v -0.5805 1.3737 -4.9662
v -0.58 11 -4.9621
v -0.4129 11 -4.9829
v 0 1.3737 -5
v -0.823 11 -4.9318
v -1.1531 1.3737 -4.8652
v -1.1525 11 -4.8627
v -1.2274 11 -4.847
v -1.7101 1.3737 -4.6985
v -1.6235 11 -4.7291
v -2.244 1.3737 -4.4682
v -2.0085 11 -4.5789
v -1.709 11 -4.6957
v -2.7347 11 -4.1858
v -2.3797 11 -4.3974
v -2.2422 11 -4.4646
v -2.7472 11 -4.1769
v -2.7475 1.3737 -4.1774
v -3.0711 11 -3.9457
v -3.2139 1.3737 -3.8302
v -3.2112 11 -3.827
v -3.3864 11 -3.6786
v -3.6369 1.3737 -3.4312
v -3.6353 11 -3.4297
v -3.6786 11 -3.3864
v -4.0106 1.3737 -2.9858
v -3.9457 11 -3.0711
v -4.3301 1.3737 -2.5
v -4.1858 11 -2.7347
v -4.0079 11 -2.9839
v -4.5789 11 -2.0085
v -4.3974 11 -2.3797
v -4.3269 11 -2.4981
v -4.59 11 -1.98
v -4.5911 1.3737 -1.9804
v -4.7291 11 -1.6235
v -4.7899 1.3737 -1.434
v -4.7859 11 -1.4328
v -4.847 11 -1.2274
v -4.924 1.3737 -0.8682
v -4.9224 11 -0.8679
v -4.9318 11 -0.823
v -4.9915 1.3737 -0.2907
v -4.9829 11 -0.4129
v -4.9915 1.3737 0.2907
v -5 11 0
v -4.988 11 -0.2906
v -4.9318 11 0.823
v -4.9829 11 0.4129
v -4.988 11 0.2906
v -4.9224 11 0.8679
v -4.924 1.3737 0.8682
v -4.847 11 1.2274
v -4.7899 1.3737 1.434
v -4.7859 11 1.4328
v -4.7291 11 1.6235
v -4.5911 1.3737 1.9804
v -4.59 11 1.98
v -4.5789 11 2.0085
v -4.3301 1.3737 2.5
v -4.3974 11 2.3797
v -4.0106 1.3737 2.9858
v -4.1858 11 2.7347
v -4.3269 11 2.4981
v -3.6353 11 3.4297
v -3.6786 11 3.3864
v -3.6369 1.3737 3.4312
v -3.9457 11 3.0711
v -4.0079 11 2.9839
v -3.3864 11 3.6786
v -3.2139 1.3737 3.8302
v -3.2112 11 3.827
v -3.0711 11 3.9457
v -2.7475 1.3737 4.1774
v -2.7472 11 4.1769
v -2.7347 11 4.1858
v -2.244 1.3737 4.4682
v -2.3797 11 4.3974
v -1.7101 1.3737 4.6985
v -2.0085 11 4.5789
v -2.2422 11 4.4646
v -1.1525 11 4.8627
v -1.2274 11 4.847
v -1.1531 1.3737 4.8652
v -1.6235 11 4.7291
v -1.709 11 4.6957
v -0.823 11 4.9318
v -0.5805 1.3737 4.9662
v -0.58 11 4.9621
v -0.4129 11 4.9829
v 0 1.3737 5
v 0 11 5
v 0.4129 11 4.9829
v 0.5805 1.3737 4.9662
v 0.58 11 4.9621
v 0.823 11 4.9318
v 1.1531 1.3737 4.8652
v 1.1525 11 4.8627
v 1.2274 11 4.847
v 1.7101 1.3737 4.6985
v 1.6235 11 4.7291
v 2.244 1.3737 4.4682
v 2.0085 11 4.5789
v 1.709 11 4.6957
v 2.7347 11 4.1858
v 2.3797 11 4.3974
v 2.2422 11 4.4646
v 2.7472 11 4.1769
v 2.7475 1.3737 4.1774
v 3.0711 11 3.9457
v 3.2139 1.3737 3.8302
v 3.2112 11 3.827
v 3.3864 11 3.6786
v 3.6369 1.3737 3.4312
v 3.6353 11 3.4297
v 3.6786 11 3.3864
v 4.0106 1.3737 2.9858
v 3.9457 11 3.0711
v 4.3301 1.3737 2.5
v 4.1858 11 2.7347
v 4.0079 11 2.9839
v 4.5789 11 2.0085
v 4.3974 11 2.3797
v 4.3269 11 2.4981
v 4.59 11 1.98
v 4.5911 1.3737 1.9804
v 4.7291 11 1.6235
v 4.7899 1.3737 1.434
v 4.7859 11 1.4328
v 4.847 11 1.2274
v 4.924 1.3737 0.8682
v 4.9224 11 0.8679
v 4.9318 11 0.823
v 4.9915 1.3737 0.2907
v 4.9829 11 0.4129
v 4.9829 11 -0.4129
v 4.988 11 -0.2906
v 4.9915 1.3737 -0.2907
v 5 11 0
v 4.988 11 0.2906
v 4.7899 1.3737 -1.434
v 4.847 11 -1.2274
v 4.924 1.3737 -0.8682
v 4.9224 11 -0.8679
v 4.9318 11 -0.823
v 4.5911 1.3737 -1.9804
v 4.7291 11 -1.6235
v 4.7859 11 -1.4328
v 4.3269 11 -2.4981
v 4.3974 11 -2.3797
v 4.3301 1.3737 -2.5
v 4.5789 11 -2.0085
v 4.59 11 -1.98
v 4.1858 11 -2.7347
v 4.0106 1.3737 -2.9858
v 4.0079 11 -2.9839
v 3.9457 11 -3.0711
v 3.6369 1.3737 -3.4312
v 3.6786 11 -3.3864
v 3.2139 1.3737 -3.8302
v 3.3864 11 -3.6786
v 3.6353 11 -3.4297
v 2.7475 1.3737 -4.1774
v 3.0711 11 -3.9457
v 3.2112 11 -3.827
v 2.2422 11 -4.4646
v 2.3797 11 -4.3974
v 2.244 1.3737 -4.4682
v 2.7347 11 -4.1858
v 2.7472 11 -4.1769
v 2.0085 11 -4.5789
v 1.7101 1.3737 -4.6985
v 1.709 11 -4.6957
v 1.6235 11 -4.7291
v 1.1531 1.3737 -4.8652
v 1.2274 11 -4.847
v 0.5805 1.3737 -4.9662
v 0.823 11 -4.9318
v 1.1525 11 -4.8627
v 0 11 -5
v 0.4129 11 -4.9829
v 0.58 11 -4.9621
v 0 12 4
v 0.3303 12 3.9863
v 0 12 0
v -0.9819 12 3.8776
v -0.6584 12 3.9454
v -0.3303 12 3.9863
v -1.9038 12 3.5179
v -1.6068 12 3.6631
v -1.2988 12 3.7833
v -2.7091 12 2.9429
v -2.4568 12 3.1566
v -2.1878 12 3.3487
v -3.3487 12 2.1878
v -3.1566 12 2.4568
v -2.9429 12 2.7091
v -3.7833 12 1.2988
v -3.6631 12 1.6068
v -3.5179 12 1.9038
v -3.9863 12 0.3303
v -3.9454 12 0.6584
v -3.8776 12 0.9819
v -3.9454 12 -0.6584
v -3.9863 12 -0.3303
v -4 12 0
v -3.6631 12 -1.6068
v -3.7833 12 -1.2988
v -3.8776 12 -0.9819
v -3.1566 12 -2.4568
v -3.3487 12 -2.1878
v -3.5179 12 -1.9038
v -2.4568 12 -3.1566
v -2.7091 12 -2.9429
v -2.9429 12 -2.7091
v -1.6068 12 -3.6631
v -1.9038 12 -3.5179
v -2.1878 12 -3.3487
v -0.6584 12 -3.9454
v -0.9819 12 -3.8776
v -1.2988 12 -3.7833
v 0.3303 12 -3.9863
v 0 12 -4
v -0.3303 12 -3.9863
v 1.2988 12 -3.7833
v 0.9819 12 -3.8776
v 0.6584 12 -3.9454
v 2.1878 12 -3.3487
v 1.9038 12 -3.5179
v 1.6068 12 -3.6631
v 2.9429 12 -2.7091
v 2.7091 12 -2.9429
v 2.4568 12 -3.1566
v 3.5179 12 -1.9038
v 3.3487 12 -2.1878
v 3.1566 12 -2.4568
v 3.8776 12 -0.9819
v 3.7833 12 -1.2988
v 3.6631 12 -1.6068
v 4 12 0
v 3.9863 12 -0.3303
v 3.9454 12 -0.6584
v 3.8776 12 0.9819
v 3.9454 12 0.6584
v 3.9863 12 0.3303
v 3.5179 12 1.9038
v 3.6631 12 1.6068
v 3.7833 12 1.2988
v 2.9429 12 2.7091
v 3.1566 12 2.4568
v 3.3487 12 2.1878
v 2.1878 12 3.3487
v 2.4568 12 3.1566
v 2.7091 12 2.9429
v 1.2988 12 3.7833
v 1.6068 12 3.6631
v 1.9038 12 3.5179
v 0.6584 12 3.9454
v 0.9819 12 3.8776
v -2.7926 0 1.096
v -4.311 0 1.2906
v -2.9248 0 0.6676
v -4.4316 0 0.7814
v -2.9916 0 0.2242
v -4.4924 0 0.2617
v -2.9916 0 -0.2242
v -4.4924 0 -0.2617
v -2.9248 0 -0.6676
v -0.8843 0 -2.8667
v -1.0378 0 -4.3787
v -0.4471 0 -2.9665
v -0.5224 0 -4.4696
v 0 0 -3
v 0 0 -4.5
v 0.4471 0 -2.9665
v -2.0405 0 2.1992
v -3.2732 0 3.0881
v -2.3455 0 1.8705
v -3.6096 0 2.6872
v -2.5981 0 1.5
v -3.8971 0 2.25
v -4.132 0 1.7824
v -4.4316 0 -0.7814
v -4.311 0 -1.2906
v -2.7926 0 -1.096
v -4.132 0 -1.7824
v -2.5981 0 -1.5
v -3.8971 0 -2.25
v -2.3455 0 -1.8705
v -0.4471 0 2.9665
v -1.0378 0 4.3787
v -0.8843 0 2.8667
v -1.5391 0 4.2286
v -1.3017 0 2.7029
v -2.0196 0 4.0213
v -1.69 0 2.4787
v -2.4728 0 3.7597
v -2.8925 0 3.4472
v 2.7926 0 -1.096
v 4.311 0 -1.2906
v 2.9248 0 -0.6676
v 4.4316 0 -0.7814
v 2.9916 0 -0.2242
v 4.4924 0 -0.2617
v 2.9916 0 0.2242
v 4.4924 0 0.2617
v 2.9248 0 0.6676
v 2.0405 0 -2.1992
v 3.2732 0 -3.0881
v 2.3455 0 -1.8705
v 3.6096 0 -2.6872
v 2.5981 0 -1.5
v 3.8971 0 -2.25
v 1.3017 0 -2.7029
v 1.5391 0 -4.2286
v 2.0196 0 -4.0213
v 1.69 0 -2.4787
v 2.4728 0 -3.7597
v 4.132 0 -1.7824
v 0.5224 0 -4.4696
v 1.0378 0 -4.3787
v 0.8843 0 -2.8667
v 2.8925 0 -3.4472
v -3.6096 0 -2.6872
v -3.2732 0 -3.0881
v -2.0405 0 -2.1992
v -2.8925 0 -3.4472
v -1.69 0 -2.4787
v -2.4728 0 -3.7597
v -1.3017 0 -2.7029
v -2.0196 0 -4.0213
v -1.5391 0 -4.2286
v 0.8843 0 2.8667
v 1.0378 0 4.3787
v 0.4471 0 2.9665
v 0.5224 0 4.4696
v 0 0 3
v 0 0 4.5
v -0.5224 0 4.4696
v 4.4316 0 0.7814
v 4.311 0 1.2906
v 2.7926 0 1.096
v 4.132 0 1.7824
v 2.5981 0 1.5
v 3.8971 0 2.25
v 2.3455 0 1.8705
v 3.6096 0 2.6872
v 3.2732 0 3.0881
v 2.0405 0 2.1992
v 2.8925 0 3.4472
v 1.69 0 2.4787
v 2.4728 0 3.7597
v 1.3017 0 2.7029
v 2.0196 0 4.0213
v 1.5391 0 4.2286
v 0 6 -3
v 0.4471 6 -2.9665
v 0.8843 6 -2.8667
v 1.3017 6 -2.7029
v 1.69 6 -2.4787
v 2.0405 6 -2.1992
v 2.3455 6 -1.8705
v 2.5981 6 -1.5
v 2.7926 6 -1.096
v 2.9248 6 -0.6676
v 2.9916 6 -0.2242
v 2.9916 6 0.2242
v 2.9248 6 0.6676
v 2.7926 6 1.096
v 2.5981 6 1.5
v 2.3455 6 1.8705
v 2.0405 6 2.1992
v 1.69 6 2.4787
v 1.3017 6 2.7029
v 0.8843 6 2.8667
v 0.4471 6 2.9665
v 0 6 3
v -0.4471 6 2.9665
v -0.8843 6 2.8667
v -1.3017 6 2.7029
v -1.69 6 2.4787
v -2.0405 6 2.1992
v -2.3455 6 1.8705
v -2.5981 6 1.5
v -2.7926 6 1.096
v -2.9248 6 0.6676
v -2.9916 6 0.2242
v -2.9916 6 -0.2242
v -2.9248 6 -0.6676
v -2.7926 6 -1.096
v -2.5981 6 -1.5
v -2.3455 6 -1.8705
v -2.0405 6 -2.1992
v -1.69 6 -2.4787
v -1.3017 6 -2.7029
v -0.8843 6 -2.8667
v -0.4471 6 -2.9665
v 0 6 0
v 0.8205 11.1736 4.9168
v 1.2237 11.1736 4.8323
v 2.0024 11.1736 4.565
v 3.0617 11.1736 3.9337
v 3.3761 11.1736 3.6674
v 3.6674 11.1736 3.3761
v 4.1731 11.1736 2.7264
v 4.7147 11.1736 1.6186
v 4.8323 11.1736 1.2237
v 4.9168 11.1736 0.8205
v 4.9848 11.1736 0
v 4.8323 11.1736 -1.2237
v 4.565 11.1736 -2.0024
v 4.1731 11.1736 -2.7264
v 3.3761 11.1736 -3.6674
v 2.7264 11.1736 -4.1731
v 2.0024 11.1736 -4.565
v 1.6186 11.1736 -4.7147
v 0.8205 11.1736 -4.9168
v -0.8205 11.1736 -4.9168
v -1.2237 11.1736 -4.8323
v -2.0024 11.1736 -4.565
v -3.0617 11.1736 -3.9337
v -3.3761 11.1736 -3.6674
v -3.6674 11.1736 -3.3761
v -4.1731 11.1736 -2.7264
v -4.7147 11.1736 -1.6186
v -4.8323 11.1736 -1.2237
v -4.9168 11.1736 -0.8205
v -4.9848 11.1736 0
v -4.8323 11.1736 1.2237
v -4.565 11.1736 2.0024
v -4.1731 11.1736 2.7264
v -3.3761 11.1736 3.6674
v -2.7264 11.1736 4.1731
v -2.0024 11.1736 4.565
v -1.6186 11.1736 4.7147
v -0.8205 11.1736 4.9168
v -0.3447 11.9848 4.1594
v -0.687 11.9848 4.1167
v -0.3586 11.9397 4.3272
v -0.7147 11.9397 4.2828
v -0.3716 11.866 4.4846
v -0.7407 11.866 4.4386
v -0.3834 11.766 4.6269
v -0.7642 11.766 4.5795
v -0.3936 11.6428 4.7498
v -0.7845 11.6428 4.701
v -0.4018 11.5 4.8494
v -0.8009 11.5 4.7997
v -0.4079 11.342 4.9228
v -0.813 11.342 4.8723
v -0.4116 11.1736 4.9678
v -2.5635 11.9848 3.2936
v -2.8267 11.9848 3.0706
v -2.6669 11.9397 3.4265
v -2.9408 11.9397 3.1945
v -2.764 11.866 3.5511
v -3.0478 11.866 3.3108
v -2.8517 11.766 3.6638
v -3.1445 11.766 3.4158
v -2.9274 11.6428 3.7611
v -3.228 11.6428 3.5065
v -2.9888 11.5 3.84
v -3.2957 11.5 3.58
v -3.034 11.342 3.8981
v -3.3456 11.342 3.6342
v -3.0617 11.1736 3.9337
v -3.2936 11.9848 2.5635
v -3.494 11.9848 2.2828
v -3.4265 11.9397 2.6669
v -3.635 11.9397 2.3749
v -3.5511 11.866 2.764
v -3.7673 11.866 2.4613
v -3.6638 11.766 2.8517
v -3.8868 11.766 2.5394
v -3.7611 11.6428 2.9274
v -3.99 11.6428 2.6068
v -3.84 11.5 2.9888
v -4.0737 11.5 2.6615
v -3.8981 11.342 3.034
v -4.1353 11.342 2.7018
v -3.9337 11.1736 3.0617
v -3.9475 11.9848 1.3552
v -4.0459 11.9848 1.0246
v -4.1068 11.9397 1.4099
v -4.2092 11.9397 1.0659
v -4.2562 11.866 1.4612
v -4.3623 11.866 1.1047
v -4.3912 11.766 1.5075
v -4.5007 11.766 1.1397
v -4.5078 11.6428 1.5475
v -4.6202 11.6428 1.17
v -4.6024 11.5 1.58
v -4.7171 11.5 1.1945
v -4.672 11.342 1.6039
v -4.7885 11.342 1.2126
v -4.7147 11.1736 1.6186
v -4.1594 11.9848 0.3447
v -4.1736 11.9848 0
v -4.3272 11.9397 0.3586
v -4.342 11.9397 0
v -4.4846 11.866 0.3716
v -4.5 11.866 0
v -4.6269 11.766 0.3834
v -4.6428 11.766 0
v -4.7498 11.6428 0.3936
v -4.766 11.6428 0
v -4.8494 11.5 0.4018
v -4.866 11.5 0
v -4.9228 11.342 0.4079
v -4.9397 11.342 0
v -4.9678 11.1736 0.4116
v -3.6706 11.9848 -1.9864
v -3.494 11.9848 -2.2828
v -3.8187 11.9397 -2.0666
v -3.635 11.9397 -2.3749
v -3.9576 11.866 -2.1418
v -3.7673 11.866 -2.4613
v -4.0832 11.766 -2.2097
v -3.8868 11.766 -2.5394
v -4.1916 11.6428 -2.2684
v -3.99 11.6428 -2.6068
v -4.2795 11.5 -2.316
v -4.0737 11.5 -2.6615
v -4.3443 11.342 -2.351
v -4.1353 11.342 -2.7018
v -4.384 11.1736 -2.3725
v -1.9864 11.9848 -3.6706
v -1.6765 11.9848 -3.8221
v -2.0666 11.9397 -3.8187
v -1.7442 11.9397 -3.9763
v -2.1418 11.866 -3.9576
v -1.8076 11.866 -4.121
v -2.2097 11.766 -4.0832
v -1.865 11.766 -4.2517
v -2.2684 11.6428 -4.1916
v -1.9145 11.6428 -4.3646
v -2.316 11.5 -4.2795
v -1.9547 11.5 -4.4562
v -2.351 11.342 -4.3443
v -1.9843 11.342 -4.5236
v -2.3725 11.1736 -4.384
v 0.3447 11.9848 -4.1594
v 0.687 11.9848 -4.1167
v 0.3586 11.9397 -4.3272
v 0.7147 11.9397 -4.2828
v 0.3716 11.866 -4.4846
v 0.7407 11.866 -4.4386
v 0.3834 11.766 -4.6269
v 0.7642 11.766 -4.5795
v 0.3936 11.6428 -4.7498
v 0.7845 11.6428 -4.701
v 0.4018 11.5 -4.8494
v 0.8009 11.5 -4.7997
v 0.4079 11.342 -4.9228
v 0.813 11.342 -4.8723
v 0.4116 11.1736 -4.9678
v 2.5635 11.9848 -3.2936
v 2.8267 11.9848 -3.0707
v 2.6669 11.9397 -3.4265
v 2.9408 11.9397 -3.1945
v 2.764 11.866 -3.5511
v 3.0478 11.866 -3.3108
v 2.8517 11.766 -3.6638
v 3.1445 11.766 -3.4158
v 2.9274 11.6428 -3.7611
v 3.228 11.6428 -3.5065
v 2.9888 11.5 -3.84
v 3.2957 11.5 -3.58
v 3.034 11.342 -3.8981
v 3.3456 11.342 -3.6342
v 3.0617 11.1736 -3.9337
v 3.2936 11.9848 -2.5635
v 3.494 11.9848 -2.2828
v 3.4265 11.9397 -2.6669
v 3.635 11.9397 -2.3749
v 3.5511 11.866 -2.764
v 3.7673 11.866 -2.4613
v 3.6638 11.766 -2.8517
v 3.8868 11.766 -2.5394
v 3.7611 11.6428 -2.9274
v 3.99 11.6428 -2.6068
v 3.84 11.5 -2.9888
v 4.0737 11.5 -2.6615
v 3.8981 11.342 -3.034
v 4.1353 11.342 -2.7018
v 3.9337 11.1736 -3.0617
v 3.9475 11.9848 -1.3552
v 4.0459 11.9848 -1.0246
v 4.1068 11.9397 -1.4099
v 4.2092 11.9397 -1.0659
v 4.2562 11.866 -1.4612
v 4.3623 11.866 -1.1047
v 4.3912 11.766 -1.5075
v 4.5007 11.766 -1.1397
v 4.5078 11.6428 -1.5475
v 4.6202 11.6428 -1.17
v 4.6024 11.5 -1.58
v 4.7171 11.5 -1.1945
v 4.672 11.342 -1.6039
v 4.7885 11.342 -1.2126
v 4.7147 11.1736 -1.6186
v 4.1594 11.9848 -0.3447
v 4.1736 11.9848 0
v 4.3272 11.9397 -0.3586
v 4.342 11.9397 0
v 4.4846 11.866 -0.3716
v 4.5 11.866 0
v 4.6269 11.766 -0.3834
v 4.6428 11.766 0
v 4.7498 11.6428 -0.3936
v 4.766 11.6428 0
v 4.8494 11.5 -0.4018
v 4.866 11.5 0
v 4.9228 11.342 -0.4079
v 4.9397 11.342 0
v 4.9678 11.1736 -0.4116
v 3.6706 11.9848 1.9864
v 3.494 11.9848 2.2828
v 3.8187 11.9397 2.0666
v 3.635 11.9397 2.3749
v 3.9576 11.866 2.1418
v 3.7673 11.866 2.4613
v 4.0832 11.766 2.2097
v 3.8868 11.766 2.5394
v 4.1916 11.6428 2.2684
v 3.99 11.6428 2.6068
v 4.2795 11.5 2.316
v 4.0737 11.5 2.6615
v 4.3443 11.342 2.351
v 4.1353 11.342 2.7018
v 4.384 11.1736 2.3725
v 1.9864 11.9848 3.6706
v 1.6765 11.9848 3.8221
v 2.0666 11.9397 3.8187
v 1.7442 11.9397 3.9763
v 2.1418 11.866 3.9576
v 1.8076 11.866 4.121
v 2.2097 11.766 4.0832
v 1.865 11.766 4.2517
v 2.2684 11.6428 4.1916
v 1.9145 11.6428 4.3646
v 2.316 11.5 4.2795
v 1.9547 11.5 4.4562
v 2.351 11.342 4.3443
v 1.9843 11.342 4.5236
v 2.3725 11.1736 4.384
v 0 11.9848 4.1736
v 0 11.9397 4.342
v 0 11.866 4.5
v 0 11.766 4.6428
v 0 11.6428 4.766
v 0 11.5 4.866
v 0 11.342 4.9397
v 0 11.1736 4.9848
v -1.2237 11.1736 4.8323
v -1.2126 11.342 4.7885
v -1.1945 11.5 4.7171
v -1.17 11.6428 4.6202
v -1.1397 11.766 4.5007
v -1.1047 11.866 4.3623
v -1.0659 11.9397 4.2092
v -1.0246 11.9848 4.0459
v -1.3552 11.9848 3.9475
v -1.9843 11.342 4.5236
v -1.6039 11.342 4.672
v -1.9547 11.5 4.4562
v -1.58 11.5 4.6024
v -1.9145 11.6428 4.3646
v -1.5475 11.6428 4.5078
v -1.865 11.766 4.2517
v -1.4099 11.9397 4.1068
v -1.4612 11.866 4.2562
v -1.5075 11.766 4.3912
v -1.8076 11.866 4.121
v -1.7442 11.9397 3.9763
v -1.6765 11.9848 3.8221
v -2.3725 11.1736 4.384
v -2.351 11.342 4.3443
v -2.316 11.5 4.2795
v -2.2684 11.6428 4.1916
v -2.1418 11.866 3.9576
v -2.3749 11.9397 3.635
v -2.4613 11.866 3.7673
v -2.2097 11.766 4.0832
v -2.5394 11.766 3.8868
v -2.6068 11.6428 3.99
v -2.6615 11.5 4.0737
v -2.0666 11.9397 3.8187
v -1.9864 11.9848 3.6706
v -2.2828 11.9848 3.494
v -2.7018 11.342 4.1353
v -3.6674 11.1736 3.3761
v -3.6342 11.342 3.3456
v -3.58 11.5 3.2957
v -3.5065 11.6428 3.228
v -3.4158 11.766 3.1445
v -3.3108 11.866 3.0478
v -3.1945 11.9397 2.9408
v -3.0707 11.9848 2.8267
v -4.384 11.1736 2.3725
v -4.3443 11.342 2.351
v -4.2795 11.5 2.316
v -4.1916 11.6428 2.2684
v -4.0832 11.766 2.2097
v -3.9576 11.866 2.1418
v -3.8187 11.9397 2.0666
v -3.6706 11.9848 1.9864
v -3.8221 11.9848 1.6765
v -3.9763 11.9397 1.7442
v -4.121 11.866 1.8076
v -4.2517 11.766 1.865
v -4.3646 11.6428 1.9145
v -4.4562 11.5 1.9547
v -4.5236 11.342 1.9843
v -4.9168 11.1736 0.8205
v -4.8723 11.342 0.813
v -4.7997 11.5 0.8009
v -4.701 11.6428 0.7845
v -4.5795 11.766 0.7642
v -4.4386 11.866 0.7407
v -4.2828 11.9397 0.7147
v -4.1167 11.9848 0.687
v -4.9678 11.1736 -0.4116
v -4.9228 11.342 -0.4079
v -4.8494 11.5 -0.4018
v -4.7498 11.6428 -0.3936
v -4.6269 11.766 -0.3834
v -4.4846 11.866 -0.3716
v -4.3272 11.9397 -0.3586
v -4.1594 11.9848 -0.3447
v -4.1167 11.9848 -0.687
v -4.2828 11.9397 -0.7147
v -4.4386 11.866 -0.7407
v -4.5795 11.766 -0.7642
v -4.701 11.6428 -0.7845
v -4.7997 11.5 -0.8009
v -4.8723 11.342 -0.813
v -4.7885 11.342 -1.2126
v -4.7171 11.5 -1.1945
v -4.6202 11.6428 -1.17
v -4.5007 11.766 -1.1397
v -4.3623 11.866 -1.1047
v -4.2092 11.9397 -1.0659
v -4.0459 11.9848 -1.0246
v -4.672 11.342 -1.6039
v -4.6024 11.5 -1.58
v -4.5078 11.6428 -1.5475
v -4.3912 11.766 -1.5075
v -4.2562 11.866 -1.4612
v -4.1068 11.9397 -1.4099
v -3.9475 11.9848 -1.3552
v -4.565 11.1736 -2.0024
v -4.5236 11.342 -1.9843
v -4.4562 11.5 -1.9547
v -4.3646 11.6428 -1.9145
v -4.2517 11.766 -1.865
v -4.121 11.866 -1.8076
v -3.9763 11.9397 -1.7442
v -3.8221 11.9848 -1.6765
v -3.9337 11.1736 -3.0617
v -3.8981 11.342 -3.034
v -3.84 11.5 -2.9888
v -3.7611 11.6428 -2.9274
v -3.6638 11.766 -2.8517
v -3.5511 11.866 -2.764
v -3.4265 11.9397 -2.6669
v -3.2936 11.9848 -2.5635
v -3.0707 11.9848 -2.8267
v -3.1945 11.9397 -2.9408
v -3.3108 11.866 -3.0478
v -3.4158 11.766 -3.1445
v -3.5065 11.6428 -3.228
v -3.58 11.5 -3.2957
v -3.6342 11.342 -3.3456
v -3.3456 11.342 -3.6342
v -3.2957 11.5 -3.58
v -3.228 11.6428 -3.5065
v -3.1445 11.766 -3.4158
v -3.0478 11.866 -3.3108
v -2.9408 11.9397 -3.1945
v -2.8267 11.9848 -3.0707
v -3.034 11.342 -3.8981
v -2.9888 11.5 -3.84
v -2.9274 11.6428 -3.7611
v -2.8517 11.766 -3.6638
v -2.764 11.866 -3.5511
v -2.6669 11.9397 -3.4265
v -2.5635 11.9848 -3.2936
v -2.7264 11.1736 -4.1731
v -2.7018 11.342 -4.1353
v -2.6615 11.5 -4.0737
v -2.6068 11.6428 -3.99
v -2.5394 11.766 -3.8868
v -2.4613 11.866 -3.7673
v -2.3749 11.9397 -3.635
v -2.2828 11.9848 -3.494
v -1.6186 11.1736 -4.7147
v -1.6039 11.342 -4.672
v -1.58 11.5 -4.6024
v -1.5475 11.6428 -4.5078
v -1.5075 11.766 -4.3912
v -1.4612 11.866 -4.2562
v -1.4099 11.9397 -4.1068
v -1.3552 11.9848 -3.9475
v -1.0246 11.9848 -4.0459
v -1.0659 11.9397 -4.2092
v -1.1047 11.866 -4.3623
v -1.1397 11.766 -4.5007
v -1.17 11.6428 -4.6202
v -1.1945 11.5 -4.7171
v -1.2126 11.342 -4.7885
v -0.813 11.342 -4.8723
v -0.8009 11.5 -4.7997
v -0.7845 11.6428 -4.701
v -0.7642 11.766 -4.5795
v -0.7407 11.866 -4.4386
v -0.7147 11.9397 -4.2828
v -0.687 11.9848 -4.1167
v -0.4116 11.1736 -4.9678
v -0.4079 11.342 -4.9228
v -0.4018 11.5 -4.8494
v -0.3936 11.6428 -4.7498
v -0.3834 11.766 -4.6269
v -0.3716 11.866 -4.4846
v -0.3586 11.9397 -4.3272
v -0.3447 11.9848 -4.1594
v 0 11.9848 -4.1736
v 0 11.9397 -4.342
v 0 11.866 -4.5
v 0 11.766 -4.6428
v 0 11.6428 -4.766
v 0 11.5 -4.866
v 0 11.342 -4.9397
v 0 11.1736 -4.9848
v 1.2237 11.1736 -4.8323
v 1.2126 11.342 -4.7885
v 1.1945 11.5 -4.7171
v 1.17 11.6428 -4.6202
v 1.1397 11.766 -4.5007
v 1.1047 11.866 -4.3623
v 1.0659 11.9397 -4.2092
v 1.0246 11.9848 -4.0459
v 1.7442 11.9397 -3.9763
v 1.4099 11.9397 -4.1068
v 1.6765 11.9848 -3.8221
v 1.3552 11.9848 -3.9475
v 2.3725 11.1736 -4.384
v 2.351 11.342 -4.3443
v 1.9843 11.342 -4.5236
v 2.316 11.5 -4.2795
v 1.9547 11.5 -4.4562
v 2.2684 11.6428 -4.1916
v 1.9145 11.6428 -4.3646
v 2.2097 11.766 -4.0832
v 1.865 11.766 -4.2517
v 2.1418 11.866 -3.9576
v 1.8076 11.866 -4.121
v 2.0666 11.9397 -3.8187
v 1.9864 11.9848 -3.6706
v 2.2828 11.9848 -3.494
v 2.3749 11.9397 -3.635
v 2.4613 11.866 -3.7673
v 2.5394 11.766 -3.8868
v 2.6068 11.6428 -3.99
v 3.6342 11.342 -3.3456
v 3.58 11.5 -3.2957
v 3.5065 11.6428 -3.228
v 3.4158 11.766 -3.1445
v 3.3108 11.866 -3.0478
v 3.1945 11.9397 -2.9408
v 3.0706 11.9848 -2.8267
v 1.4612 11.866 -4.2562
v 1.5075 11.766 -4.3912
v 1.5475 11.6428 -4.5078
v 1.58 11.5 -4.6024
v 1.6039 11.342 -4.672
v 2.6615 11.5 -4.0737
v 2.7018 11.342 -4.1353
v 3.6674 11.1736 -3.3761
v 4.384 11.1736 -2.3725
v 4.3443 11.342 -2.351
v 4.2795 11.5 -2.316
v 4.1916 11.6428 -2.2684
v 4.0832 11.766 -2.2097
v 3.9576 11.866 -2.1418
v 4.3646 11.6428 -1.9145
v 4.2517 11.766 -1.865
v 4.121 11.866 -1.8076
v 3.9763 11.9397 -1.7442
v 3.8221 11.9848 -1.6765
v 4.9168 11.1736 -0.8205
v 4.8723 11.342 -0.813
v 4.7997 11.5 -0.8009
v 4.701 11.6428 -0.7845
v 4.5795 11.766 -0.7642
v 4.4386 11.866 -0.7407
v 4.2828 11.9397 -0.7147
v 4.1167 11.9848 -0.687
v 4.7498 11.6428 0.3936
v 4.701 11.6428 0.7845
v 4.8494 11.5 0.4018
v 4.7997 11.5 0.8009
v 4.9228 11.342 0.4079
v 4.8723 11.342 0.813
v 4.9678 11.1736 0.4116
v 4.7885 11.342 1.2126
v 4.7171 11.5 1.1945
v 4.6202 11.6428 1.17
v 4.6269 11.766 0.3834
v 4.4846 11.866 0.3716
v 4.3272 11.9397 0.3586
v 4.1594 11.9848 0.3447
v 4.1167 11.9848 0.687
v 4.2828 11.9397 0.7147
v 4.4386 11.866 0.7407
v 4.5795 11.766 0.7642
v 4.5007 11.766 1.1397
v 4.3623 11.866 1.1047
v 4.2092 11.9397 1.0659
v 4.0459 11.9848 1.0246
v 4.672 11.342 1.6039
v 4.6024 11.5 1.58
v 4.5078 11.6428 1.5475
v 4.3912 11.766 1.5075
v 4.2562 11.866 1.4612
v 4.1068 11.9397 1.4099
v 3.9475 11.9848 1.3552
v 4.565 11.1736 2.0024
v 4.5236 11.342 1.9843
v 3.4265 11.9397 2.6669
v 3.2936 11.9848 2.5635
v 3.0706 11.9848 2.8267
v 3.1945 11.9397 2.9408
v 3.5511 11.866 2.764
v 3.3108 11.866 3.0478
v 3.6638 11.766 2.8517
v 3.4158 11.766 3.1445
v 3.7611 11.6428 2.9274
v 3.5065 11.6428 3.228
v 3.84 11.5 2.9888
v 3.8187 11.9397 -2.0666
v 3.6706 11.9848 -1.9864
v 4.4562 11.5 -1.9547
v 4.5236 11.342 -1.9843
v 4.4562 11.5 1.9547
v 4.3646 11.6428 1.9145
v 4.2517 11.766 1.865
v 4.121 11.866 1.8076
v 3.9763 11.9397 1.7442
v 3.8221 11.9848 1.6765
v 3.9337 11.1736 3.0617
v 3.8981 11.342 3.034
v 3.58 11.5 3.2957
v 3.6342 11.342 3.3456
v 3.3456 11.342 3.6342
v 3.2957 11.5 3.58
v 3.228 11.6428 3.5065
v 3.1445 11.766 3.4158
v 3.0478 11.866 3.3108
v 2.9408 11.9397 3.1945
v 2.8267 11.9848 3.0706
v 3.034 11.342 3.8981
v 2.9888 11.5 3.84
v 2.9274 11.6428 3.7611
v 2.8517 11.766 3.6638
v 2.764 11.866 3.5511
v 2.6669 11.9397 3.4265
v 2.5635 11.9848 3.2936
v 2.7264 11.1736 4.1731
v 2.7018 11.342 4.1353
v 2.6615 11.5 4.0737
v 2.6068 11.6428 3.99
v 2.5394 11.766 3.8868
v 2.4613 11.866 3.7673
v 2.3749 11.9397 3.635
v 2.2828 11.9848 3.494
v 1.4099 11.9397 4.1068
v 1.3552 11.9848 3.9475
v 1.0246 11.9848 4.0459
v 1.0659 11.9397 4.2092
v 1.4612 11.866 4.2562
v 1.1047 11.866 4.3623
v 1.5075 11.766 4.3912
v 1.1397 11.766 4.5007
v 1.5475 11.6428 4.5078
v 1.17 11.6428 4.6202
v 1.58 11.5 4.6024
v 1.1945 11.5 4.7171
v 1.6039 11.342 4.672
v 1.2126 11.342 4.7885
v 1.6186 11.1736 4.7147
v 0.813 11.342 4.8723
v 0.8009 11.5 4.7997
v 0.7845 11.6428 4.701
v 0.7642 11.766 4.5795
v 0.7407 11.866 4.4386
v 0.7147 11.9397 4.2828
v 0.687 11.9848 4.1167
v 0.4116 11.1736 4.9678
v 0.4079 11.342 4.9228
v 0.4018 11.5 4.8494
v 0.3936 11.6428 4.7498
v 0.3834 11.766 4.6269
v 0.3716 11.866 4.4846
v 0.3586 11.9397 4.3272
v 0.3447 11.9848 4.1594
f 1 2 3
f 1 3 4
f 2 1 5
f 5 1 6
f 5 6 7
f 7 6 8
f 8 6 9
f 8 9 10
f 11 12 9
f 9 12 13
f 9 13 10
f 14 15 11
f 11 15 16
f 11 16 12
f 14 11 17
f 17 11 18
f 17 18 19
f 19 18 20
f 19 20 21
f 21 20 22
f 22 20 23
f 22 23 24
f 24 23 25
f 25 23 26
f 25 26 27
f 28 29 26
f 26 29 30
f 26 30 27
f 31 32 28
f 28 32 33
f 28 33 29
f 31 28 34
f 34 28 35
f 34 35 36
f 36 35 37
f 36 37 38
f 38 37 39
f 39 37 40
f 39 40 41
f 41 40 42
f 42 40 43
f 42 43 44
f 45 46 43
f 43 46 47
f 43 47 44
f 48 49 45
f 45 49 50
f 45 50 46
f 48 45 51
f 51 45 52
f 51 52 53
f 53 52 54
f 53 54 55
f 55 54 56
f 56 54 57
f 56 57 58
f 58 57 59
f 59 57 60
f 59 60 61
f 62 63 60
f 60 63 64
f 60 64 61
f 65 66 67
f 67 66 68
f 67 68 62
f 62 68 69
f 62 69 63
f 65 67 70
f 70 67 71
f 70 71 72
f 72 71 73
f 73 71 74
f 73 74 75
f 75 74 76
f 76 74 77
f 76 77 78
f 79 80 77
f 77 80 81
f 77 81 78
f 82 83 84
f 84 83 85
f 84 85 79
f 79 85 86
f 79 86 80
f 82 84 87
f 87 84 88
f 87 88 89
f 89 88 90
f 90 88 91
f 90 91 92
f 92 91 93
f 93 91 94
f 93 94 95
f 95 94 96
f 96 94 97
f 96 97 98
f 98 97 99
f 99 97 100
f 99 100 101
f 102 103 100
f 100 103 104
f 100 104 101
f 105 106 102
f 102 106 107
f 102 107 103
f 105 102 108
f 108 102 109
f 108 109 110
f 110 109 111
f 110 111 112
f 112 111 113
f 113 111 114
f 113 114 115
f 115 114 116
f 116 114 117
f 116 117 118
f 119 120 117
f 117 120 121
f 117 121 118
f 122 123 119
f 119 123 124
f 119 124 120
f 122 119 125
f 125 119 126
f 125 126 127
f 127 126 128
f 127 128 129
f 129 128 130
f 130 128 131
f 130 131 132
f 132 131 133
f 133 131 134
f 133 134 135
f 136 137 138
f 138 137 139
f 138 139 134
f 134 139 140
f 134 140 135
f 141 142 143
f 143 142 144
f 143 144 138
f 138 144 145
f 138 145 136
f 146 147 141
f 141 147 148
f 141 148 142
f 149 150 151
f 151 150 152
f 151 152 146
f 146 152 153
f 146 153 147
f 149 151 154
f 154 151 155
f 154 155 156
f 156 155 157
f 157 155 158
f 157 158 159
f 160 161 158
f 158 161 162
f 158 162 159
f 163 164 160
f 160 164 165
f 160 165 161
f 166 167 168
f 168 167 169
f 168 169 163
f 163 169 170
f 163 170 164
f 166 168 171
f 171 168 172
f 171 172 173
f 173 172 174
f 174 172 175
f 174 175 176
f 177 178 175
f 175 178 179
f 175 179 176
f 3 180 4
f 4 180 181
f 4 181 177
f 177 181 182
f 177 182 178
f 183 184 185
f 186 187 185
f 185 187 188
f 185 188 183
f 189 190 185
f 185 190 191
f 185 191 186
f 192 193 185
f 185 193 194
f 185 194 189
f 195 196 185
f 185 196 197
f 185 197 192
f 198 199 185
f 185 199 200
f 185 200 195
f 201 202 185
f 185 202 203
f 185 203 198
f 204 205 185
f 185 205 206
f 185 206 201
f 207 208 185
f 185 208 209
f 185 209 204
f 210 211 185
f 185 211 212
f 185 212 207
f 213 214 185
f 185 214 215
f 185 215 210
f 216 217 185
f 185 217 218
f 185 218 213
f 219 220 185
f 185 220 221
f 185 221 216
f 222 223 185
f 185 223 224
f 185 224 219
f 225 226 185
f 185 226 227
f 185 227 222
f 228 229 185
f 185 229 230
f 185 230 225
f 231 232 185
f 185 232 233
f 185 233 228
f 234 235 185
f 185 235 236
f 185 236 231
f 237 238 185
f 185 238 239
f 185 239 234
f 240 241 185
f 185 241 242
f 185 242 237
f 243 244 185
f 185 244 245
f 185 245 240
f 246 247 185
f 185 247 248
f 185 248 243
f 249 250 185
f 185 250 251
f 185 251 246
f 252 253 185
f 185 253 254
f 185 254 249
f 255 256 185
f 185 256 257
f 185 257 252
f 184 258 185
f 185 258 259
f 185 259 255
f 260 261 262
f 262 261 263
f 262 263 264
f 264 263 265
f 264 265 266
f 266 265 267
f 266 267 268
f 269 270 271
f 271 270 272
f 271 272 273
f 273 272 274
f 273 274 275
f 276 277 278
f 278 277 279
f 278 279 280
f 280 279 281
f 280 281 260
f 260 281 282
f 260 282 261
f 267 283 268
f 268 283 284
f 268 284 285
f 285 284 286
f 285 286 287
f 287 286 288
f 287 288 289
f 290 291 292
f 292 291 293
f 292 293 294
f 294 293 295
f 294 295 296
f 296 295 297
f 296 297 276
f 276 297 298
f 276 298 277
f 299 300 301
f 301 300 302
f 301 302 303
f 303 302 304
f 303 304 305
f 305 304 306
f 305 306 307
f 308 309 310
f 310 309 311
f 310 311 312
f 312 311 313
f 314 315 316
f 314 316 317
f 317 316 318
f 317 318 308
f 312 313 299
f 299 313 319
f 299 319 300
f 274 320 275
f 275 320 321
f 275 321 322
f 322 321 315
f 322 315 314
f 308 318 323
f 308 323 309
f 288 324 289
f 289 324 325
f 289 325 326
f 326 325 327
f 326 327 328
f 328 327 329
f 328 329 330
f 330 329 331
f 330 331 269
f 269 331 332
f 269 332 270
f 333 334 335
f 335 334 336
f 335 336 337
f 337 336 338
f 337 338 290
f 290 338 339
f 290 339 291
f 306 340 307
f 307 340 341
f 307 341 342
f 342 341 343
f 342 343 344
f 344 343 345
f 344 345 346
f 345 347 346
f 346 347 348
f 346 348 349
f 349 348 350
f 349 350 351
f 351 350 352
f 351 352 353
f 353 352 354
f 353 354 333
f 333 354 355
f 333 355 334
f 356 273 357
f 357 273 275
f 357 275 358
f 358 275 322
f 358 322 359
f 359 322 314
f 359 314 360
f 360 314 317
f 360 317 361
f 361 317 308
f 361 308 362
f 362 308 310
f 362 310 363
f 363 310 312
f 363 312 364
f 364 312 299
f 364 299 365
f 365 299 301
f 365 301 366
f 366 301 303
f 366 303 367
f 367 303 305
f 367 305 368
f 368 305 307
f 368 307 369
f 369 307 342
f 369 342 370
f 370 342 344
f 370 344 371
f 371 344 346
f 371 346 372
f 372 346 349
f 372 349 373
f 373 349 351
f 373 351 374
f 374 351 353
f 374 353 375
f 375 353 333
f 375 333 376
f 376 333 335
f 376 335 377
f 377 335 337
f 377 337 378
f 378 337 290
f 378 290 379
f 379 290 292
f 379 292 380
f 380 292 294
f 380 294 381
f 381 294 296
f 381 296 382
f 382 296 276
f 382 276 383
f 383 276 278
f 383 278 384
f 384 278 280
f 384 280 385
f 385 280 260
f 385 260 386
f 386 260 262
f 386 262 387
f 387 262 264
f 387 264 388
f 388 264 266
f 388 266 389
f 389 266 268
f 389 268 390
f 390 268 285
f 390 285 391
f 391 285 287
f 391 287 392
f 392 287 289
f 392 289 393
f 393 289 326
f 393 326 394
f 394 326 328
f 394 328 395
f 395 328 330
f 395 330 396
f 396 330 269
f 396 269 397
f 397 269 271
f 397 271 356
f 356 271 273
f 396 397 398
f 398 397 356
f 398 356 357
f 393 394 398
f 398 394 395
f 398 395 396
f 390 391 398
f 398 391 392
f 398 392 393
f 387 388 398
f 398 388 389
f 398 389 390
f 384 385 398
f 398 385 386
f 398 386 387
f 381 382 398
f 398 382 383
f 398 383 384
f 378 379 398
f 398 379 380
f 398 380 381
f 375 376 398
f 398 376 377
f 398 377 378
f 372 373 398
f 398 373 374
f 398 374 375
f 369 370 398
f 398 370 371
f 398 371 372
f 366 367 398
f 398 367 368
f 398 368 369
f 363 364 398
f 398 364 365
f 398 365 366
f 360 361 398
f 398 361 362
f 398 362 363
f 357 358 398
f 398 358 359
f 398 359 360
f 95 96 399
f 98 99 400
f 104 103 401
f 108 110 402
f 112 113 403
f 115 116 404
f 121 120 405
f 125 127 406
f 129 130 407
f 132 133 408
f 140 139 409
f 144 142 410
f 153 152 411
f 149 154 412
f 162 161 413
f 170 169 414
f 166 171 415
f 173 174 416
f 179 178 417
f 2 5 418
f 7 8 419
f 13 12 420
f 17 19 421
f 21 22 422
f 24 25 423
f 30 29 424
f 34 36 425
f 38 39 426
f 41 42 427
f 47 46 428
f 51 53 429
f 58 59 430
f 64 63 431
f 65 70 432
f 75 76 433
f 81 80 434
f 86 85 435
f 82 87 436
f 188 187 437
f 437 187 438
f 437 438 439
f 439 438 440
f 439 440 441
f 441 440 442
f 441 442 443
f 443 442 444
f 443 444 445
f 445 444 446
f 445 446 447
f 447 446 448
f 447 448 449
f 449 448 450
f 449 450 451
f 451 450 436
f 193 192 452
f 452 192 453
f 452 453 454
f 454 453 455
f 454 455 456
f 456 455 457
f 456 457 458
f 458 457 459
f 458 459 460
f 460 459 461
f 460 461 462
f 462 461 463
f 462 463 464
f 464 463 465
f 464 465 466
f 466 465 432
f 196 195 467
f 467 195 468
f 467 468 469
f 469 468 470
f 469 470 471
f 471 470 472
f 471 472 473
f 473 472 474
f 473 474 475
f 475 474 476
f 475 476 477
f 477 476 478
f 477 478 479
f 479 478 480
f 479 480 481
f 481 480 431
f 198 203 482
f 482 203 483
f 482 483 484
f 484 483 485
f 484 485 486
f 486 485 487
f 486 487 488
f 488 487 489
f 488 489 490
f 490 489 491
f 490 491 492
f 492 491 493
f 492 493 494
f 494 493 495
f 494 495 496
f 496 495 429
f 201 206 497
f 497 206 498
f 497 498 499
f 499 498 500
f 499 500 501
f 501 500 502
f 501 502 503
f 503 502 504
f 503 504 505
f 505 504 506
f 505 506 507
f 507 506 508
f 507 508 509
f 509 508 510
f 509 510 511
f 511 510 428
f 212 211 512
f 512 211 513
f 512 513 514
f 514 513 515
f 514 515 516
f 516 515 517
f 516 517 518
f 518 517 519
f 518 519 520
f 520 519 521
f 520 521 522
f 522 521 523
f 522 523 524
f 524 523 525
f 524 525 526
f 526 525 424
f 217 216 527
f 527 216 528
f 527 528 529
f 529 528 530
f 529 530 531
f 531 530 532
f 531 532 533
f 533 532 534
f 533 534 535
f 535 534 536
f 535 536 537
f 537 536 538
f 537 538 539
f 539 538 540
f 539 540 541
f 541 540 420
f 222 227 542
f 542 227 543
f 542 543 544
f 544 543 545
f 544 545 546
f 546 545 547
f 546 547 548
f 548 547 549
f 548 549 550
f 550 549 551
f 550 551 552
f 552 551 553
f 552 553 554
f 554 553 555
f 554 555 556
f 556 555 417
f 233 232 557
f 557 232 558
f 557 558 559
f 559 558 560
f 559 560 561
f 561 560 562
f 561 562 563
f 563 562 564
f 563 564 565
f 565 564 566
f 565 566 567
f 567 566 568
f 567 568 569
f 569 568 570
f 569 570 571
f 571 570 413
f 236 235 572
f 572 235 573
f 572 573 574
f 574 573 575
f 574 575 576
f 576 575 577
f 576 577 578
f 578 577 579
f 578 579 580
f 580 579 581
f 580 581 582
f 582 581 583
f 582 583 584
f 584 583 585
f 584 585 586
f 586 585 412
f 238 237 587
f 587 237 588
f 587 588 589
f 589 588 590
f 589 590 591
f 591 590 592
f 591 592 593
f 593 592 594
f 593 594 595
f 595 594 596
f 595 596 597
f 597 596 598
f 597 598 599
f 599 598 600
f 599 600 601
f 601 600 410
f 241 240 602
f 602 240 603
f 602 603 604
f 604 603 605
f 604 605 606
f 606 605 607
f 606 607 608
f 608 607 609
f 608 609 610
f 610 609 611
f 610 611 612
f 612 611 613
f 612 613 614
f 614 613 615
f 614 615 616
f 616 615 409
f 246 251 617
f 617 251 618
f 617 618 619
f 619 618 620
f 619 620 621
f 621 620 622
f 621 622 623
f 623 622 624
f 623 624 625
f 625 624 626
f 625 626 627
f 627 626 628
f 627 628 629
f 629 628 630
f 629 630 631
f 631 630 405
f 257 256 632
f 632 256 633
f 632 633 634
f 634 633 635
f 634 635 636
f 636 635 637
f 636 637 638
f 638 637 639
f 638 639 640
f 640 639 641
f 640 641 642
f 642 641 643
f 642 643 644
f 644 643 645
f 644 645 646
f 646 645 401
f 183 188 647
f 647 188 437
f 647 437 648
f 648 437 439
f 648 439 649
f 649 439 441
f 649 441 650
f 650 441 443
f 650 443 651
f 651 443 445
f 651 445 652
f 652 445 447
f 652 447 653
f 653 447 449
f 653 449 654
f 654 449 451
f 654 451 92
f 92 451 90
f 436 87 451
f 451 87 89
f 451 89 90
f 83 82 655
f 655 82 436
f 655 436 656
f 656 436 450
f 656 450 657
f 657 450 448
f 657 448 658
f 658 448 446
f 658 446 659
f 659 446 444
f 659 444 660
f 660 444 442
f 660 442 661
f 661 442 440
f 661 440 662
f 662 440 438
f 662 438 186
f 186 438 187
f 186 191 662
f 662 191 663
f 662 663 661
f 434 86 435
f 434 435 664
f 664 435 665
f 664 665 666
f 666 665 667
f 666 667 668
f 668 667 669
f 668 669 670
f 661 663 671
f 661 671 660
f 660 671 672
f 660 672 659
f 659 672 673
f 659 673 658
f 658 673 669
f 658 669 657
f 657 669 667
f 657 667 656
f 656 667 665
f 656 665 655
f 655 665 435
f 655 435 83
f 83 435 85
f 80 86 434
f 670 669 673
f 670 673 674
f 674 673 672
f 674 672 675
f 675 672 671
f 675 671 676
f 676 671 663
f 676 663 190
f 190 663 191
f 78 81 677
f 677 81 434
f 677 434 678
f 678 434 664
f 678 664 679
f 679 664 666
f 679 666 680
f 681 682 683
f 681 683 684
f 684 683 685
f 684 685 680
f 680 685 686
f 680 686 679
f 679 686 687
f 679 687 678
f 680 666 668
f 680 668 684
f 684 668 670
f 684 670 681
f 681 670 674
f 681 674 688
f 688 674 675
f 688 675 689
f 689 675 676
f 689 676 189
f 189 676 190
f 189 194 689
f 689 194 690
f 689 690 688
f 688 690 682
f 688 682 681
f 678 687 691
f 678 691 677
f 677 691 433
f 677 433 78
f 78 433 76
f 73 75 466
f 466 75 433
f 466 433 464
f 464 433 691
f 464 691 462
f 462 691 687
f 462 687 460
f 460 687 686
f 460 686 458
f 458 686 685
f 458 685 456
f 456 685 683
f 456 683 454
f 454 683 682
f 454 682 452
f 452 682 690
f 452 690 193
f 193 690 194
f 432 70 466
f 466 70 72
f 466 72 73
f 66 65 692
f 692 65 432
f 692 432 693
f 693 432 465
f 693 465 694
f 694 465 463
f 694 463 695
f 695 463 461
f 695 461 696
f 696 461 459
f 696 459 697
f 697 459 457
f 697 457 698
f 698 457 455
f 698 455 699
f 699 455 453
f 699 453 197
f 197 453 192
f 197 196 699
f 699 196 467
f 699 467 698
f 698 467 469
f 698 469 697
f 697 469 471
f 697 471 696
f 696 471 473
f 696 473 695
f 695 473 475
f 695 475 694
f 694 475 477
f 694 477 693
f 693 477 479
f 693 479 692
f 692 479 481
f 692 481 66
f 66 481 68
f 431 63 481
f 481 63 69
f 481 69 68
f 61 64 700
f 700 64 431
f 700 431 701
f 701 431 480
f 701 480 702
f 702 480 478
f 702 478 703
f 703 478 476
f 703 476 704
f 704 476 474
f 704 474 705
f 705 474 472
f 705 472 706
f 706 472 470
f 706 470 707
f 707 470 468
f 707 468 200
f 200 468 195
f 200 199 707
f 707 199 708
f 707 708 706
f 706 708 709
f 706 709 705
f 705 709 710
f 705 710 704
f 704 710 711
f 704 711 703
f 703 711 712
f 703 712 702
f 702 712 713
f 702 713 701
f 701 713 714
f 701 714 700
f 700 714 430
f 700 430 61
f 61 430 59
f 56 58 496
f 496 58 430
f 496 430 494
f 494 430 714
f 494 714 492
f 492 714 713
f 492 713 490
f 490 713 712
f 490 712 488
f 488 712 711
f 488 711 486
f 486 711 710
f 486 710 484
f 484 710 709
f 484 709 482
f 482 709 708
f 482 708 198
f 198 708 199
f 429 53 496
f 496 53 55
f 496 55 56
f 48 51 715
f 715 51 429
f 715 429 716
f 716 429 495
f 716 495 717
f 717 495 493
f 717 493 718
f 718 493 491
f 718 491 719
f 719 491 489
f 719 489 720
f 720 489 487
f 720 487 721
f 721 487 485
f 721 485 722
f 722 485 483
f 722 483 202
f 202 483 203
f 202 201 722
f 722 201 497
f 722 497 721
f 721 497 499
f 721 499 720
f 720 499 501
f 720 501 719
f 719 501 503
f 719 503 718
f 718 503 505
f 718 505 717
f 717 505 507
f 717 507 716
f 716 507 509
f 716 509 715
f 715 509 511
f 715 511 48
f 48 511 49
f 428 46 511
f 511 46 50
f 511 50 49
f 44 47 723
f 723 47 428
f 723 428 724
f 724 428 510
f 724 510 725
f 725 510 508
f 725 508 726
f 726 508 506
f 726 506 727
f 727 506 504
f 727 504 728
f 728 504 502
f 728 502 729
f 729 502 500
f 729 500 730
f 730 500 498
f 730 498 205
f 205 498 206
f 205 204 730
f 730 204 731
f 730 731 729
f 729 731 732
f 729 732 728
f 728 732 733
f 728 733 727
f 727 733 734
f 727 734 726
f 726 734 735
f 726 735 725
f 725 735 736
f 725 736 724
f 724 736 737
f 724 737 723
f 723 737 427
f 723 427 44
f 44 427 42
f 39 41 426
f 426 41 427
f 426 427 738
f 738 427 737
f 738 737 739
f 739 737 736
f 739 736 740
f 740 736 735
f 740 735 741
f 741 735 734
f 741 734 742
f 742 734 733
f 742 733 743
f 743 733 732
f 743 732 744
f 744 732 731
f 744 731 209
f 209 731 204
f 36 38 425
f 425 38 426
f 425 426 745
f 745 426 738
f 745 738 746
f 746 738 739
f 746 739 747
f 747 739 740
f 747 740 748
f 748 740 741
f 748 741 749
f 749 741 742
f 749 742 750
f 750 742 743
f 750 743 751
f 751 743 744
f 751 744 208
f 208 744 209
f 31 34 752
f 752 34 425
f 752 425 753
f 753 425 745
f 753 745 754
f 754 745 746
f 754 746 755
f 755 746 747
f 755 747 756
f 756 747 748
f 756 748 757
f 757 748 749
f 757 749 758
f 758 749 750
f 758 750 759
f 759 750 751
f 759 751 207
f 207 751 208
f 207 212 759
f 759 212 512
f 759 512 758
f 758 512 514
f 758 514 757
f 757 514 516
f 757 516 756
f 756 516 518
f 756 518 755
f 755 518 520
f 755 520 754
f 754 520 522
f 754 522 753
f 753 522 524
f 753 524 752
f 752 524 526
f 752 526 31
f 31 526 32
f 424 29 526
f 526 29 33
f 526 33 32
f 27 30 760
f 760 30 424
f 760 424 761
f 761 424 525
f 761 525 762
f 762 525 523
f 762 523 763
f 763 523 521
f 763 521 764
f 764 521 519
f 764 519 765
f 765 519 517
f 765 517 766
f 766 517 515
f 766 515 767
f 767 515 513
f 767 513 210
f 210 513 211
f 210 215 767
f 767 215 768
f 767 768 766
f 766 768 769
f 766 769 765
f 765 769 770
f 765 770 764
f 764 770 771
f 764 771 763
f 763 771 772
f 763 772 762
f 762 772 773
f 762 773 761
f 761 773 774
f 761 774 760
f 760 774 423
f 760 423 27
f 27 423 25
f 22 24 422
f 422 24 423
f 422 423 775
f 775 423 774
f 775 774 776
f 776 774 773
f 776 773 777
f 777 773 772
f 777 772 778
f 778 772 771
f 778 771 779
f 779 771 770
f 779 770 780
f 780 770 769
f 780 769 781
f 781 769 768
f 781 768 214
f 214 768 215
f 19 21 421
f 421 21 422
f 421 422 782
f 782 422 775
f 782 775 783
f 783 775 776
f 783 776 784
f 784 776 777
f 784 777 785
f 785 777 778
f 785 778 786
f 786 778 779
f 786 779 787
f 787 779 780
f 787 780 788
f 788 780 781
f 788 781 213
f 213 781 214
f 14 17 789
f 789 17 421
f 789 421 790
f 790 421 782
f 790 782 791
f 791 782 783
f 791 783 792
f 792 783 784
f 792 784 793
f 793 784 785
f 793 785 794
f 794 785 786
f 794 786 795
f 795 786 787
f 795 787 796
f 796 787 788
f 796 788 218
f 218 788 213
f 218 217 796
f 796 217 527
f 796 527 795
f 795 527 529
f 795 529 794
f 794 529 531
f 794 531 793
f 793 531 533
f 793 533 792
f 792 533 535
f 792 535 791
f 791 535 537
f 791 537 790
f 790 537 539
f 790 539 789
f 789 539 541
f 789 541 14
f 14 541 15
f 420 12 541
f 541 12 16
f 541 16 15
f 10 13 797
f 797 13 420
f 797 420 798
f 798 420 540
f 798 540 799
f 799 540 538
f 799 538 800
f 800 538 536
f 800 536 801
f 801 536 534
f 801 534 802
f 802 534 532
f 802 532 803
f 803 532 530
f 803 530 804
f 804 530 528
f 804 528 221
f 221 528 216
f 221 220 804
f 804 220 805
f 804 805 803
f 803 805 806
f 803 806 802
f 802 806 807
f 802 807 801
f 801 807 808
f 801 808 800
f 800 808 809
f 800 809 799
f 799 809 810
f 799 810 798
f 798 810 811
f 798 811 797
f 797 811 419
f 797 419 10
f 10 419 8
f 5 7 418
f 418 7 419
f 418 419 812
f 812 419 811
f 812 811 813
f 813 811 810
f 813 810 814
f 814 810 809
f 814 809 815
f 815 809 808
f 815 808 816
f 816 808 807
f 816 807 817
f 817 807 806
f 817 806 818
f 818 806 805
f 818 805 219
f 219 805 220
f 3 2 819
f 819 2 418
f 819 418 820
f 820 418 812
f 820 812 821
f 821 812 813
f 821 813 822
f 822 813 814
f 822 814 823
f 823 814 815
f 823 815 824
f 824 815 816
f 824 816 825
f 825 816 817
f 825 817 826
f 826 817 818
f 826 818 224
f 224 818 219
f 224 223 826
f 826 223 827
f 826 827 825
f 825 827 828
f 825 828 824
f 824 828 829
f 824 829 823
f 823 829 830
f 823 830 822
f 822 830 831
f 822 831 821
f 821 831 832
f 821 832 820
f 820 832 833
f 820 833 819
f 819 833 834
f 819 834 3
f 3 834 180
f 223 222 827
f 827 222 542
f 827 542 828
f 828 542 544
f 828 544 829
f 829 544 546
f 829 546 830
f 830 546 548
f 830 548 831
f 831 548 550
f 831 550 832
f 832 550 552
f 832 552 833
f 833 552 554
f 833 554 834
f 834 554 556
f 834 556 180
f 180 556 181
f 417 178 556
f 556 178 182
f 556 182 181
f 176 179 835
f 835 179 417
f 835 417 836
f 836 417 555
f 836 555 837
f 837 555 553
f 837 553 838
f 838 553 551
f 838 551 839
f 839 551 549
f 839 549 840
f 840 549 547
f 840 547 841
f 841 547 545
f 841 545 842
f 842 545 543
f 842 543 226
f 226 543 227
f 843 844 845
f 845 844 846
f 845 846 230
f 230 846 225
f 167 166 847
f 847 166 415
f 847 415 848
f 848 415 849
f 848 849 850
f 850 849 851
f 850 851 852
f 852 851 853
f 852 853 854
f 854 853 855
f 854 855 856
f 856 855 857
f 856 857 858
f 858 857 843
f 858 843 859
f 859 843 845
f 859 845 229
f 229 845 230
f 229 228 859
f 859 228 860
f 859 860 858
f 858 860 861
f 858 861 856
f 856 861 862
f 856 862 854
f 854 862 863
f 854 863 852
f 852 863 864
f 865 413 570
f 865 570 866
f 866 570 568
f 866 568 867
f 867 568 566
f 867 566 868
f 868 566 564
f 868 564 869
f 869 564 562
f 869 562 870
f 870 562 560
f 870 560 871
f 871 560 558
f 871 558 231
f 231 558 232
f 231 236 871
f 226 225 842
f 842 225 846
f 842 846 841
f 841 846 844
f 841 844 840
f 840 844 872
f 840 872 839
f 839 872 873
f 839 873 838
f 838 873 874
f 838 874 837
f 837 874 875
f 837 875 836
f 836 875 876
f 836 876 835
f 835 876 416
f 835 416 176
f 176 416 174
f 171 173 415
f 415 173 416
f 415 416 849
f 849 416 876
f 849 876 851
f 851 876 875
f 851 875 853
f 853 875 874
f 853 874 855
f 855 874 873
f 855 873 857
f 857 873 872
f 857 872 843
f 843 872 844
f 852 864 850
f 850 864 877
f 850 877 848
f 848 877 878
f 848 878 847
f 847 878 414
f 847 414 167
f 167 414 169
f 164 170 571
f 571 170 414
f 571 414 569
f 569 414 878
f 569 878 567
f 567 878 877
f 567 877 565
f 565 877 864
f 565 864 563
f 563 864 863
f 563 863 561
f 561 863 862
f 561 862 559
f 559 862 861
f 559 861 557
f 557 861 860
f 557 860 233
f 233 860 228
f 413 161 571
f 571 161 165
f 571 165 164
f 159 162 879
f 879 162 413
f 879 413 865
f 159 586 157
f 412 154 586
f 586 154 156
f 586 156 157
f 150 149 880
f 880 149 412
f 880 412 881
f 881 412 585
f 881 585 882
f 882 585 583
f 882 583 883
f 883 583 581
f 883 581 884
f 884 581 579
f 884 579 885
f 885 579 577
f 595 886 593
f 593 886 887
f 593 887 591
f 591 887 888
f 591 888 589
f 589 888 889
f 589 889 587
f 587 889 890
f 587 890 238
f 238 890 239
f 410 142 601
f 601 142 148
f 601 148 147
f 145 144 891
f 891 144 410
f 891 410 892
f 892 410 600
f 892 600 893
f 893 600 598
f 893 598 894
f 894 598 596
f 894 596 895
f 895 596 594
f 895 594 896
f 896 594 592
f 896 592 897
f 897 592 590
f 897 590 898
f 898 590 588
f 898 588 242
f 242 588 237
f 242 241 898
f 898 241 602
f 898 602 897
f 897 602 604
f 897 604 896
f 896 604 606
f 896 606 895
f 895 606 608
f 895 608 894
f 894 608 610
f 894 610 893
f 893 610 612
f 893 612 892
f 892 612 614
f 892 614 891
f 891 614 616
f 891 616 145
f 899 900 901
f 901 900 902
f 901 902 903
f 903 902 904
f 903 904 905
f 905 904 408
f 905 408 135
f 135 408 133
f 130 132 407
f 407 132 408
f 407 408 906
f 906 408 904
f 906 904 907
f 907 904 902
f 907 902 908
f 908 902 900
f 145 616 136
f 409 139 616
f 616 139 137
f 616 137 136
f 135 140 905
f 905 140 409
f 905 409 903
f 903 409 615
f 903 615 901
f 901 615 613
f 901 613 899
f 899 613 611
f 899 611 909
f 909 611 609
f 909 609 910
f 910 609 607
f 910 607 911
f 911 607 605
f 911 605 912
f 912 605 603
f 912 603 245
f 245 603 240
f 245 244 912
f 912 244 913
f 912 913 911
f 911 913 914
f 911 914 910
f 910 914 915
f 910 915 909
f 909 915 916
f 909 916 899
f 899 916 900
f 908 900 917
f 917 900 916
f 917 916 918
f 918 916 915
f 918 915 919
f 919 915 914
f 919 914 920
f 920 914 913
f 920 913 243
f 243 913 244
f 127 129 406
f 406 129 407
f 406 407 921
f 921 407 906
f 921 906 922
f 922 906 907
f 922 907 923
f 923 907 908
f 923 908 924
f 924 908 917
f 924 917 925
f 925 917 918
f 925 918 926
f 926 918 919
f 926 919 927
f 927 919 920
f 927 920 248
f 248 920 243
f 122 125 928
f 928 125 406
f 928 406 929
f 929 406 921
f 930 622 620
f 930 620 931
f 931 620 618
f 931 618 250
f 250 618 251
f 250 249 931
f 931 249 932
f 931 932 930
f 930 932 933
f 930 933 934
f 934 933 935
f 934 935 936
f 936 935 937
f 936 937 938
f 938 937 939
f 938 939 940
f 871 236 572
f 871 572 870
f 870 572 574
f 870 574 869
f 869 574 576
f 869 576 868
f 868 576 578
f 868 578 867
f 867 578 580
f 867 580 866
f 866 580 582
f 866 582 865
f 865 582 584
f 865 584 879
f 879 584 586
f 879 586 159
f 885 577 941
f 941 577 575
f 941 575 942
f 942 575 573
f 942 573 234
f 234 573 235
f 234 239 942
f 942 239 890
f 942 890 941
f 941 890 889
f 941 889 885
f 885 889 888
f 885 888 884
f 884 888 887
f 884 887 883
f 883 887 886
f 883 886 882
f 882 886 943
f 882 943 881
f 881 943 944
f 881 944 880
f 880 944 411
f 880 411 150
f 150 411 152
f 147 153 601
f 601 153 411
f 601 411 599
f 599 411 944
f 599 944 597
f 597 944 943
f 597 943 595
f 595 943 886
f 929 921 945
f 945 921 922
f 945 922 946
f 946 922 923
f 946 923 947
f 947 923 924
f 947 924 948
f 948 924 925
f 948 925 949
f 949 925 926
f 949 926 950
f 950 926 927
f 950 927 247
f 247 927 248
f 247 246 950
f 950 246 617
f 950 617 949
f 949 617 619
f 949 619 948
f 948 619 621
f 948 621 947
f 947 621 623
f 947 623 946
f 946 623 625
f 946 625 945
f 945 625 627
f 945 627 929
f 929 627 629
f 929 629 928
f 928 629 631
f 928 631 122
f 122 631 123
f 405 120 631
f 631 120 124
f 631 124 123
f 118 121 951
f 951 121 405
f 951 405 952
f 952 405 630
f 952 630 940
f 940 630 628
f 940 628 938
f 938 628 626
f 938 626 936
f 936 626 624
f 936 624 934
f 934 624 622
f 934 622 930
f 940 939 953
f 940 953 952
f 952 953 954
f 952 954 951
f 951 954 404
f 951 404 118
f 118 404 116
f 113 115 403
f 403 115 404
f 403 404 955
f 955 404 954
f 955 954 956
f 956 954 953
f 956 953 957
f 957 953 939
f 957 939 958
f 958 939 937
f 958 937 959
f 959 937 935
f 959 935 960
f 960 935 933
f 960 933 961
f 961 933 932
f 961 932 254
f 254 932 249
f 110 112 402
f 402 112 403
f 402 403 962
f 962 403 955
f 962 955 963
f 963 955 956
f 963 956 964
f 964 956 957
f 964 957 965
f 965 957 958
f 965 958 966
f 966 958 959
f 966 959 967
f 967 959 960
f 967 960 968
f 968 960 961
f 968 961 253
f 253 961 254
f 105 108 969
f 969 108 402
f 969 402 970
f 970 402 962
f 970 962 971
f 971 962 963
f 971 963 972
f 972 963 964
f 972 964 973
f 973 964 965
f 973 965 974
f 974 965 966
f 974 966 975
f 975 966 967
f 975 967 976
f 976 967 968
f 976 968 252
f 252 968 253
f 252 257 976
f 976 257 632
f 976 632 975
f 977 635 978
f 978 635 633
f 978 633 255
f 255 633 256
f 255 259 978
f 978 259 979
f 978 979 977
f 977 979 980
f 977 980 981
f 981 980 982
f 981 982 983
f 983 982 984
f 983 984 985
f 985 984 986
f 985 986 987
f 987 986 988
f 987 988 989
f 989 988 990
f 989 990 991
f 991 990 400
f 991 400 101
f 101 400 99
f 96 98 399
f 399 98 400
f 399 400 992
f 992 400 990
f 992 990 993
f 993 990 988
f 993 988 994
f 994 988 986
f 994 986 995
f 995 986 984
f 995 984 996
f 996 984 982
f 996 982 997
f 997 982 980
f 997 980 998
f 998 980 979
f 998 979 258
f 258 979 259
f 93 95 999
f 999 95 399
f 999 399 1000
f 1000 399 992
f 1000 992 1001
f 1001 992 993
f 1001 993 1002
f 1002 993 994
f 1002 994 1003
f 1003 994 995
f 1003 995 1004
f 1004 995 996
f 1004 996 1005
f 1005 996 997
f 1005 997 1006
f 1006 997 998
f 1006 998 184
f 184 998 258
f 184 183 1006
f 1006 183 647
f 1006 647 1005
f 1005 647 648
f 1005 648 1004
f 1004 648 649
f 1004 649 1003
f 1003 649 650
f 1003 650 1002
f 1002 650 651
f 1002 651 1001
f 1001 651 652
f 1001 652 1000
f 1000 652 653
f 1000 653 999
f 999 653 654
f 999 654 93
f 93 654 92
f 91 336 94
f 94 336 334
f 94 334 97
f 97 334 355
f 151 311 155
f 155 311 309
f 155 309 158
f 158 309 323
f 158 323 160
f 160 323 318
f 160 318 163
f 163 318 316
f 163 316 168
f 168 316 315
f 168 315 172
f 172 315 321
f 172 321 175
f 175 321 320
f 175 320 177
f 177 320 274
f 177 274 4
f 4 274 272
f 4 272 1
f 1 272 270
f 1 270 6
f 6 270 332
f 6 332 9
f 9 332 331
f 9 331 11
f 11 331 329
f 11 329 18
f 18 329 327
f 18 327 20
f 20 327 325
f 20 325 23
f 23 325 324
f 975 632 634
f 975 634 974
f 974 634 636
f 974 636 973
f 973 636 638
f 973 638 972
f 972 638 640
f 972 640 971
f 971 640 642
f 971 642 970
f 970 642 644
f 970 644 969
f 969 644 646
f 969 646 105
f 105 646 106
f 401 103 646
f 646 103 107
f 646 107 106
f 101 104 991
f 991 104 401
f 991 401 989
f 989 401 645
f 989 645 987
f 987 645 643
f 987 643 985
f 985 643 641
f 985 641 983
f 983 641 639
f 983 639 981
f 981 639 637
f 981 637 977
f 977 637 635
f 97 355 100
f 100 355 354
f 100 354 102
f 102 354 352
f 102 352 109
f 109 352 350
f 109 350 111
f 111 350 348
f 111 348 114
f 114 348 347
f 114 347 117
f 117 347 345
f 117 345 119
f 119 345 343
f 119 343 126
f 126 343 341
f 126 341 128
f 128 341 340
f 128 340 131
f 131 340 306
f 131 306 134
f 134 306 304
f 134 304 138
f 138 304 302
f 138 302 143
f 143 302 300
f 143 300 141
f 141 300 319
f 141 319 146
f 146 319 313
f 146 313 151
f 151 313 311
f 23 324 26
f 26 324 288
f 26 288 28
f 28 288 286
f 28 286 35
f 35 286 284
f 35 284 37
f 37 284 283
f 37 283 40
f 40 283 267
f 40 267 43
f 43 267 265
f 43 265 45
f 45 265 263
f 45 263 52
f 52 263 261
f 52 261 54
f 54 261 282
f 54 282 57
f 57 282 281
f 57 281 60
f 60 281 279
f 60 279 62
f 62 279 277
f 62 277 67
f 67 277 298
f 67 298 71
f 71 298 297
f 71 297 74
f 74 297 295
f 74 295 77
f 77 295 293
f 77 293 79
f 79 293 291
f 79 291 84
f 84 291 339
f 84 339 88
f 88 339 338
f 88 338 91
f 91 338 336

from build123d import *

# Parameters (mm, degrees)
SKETCH1_R           = 5
BOSS_EXTRUDE1_DEPTH = 12
SKETCH2_R           = 3
CUT_EXTRUDE1_DEPTH  = 6
FILLET1_R           = 1
CHAMFER1_SIZE       = 0.5
CHAMFER1_SIZE2      = 1.37373871


with BuildPart() as part:
    # Sketch1 → Boss-Extrude1 (new body)
    with BuildSketch(Plane(origin=(0, 0, 0), x_dir=(1, 0, 0), z_dir=(0, 1, 0))):
        Circle(SKETCH1_R)
    extrude(amount=BOSS_EXTRUDE1_DEPTH)

    # Sketch2 → Cut-Extrude1 (cut)
    with BuildSketch(Plane.XZ):
        Circle(SKETCH2_R)
    extrude(amount=-CUT_EXTRUDE1_DEPTH, mode=Mode.SUBTRACT)

    # Fillet1
    fillet1_edges = [part.edges().sort_by_distance(p)[0] for p in [
        (-5, 12, 0),
    ]]
    fillet(fillet1_edges, radius=FILLET1_R)

    # Chamfer1
    chamfer1_edges = [part.edges().sort_by_distance(p)[0] for p in [
        (-5, 0, 0),
    ]]
    chamfer1_side = [part.faces().sort_by_distance(p)[0] for p in [
        (-4.858578644, 0, 0),
    ]]
    chamfer(chamfer1_edges, length=CHAMFER1_SIZE, length2=CHAMFER1_SIZE2, reference=chamfer1_side[0])


solid = part.part
